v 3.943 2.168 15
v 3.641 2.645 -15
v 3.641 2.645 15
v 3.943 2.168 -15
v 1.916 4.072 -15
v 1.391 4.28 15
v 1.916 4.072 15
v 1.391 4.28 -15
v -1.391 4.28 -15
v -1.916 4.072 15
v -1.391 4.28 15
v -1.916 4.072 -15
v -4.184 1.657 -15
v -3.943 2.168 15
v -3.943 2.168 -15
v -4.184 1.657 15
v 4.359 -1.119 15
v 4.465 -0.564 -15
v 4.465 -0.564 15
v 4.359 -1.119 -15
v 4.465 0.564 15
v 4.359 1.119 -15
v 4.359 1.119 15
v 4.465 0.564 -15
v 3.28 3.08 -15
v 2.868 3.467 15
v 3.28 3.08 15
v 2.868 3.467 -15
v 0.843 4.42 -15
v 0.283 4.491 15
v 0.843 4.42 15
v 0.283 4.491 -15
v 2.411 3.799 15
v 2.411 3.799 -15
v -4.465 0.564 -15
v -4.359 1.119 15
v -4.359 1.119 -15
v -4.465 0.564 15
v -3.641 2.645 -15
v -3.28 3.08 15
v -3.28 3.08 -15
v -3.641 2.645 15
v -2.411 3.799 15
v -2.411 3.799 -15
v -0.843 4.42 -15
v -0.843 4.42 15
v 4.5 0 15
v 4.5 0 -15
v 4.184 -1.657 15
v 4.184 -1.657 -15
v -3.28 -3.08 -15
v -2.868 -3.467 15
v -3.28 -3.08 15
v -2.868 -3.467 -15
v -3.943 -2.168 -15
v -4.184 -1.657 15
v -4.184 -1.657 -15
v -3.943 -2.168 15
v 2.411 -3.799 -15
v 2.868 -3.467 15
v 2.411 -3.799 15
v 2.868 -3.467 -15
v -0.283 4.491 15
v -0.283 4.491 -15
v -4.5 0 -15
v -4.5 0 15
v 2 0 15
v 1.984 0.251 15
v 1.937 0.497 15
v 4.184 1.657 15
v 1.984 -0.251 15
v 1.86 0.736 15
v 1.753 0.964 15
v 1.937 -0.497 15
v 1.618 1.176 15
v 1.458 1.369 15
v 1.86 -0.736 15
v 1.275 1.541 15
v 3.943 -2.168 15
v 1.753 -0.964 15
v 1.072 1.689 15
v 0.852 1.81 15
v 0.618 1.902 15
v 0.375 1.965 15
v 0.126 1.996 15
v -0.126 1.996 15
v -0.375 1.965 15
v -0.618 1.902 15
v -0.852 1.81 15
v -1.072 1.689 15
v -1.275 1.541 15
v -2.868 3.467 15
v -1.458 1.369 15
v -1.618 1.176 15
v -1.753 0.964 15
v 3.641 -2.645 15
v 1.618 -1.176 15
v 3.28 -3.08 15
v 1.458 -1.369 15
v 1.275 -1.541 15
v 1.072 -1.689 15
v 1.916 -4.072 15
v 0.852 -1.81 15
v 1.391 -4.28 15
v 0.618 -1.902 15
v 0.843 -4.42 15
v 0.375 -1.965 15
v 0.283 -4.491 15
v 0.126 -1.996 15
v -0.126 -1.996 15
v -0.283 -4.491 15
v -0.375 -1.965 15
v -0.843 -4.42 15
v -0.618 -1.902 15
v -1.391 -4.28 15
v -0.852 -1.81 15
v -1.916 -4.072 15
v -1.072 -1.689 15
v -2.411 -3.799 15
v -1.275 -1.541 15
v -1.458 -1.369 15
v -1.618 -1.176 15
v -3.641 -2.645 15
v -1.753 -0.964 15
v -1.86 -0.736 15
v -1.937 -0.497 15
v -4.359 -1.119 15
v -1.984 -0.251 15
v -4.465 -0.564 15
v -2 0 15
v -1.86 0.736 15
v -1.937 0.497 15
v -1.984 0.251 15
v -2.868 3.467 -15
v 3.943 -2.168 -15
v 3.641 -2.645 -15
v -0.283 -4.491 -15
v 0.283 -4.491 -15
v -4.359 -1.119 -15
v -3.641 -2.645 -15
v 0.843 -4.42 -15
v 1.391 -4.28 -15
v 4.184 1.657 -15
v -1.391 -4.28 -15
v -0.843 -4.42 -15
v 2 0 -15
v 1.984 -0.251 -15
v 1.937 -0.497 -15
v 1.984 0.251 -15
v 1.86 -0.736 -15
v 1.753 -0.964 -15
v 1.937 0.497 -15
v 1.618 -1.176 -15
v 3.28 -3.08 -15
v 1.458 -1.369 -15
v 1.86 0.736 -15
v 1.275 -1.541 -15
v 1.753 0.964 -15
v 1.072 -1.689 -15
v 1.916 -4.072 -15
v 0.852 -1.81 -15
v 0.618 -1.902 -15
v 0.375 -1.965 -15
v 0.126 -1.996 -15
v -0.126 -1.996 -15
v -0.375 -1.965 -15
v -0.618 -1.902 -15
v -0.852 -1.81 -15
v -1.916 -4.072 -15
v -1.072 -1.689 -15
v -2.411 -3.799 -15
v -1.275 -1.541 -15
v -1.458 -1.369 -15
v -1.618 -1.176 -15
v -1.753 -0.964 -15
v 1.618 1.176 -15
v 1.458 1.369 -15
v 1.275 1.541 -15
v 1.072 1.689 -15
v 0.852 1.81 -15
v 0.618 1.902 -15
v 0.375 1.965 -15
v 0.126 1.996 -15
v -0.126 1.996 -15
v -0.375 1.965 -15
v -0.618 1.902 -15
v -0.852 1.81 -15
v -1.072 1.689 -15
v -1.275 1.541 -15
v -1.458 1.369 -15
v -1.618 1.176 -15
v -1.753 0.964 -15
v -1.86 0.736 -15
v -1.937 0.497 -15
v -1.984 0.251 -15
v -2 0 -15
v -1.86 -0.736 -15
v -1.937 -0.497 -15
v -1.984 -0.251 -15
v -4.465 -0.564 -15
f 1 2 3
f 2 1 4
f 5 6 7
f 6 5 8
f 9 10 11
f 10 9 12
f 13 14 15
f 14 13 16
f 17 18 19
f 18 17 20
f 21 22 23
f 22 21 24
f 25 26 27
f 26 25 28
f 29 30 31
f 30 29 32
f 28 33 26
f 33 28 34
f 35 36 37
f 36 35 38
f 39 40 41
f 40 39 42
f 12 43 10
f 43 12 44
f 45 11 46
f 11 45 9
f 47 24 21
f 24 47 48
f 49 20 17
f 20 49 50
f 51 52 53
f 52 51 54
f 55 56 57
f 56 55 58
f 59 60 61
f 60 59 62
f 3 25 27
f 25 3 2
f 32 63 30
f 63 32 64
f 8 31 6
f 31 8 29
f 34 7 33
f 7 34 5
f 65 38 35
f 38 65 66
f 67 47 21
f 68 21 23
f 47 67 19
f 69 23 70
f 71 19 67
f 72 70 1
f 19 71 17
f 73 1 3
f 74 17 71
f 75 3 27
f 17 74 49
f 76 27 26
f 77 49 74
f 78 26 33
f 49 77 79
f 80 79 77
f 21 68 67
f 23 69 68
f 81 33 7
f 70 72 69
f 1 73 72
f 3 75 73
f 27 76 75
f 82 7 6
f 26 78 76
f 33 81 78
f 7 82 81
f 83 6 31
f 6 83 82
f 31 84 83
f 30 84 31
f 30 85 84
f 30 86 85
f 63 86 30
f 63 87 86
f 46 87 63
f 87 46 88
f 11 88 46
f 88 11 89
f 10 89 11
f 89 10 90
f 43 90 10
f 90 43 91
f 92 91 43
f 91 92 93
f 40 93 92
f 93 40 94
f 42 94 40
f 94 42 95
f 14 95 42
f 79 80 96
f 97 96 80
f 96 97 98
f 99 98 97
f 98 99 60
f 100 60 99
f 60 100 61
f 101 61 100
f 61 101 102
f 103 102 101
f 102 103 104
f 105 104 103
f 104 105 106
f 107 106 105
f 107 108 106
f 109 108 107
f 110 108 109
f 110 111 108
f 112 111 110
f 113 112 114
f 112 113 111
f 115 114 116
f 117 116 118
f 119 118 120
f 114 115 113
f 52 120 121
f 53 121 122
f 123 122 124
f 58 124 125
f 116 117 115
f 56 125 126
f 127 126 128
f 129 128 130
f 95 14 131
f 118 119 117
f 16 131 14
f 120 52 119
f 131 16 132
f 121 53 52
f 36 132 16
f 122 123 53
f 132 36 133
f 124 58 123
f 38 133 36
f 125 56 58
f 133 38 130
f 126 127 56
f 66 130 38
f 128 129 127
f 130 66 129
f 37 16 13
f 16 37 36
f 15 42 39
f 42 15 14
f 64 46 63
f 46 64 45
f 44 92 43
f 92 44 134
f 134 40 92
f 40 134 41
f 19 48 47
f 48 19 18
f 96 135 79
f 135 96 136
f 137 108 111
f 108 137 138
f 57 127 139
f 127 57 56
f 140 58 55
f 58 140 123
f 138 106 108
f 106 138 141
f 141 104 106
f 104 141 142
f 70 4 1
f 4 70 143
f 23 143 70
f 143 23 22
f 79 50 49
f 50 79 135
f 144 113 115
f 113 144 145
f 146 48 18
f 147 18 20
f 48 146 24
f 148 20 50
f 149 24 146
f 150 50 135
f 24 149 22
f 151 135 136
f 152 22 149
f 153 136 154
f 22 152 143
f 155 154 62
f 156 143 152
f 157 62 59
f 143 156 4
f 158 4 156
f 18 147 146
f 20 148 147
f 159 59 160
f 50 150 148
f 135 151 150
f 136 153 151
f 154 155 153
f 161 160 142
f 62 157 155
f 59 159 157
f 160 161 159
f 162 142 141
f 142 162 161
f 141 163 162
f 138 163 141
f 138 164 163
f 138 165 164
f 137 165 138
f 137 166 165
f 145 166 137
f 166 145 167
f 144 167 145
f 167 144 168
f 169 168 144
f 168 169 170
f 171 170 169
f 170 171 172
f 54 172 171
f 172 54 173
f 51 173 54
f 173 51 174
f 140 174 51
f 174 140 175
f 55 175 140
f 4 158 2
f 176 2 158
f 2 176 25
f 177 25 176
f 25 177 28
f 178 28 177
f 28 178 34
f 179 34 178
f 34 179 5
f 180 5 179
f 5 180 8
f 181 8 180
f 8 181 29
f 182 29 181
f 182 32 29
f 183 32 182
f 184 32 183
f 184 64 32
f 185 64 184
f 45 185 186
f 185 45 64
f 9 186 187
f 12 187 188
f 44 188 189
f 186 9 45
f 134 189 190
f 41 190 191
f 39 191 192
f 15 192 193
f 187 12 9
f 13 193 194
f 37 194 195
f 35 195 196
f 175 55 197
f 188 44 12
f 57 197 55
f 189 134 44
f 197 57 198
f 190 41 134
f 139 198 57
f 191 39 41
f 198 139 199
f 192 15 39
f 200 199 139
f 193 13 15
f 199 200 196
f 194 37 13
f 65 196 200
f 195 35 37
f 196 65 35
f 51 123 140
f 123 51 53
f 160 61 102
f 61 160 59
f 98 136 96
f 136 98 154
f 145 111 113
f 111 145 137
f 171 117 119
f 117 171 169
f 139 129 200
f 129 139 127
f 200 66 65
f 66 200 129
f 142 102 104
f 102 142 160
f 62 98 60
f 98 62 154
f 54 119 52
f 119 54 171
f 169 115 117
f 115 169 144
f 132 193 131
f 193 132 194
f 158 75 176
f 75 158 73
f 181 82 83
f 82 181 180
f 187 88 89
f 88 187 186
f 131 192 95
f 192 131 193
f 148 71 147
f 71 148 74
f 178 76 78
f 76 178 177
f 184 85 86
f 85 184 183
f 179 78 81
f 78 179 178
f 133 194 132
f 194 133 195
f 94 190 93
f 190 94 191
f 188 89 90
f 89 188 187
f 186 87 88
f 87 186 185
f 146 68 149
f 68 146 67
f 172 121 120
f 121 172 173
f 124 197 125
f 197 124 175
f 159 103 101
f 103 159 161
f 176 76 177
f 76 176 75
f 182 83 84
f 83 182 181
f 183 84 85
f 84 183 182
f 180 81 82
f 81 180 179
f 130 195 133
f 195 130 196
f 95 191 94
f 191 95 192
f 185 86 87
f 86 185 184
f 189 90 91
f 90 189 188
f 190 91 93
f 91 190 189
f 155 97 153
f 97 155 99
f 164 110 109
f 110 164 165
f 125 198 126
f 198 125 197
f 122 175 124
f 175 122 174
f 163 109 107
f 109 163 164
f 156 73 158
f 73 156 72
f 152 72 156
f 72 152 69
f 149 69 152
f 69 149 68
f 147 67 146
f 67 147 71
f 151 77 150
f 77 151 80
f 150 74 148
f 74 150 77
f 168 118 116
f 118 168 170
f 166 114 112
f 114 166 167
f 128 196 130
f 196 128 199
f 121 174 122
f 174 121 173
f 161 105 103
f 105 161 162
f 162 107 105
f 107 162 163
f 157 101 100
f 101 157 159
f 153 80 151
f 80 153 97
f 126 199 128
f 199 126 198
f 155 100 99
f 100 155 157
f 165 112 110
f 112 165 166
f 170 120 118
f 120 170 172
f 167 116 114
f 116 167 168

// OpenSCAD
$fn = 50;


difference() {
	union() {
		translate(v = [0, 0, -15.0000000000]) {
			cylinder(h = 30, r = 4.5000000000);
		}
	}
	union() {
		translate(v = [0, 0, -100.0000000000]) {
			cylinder(h = 200, r = 2);
		}
	}
}
